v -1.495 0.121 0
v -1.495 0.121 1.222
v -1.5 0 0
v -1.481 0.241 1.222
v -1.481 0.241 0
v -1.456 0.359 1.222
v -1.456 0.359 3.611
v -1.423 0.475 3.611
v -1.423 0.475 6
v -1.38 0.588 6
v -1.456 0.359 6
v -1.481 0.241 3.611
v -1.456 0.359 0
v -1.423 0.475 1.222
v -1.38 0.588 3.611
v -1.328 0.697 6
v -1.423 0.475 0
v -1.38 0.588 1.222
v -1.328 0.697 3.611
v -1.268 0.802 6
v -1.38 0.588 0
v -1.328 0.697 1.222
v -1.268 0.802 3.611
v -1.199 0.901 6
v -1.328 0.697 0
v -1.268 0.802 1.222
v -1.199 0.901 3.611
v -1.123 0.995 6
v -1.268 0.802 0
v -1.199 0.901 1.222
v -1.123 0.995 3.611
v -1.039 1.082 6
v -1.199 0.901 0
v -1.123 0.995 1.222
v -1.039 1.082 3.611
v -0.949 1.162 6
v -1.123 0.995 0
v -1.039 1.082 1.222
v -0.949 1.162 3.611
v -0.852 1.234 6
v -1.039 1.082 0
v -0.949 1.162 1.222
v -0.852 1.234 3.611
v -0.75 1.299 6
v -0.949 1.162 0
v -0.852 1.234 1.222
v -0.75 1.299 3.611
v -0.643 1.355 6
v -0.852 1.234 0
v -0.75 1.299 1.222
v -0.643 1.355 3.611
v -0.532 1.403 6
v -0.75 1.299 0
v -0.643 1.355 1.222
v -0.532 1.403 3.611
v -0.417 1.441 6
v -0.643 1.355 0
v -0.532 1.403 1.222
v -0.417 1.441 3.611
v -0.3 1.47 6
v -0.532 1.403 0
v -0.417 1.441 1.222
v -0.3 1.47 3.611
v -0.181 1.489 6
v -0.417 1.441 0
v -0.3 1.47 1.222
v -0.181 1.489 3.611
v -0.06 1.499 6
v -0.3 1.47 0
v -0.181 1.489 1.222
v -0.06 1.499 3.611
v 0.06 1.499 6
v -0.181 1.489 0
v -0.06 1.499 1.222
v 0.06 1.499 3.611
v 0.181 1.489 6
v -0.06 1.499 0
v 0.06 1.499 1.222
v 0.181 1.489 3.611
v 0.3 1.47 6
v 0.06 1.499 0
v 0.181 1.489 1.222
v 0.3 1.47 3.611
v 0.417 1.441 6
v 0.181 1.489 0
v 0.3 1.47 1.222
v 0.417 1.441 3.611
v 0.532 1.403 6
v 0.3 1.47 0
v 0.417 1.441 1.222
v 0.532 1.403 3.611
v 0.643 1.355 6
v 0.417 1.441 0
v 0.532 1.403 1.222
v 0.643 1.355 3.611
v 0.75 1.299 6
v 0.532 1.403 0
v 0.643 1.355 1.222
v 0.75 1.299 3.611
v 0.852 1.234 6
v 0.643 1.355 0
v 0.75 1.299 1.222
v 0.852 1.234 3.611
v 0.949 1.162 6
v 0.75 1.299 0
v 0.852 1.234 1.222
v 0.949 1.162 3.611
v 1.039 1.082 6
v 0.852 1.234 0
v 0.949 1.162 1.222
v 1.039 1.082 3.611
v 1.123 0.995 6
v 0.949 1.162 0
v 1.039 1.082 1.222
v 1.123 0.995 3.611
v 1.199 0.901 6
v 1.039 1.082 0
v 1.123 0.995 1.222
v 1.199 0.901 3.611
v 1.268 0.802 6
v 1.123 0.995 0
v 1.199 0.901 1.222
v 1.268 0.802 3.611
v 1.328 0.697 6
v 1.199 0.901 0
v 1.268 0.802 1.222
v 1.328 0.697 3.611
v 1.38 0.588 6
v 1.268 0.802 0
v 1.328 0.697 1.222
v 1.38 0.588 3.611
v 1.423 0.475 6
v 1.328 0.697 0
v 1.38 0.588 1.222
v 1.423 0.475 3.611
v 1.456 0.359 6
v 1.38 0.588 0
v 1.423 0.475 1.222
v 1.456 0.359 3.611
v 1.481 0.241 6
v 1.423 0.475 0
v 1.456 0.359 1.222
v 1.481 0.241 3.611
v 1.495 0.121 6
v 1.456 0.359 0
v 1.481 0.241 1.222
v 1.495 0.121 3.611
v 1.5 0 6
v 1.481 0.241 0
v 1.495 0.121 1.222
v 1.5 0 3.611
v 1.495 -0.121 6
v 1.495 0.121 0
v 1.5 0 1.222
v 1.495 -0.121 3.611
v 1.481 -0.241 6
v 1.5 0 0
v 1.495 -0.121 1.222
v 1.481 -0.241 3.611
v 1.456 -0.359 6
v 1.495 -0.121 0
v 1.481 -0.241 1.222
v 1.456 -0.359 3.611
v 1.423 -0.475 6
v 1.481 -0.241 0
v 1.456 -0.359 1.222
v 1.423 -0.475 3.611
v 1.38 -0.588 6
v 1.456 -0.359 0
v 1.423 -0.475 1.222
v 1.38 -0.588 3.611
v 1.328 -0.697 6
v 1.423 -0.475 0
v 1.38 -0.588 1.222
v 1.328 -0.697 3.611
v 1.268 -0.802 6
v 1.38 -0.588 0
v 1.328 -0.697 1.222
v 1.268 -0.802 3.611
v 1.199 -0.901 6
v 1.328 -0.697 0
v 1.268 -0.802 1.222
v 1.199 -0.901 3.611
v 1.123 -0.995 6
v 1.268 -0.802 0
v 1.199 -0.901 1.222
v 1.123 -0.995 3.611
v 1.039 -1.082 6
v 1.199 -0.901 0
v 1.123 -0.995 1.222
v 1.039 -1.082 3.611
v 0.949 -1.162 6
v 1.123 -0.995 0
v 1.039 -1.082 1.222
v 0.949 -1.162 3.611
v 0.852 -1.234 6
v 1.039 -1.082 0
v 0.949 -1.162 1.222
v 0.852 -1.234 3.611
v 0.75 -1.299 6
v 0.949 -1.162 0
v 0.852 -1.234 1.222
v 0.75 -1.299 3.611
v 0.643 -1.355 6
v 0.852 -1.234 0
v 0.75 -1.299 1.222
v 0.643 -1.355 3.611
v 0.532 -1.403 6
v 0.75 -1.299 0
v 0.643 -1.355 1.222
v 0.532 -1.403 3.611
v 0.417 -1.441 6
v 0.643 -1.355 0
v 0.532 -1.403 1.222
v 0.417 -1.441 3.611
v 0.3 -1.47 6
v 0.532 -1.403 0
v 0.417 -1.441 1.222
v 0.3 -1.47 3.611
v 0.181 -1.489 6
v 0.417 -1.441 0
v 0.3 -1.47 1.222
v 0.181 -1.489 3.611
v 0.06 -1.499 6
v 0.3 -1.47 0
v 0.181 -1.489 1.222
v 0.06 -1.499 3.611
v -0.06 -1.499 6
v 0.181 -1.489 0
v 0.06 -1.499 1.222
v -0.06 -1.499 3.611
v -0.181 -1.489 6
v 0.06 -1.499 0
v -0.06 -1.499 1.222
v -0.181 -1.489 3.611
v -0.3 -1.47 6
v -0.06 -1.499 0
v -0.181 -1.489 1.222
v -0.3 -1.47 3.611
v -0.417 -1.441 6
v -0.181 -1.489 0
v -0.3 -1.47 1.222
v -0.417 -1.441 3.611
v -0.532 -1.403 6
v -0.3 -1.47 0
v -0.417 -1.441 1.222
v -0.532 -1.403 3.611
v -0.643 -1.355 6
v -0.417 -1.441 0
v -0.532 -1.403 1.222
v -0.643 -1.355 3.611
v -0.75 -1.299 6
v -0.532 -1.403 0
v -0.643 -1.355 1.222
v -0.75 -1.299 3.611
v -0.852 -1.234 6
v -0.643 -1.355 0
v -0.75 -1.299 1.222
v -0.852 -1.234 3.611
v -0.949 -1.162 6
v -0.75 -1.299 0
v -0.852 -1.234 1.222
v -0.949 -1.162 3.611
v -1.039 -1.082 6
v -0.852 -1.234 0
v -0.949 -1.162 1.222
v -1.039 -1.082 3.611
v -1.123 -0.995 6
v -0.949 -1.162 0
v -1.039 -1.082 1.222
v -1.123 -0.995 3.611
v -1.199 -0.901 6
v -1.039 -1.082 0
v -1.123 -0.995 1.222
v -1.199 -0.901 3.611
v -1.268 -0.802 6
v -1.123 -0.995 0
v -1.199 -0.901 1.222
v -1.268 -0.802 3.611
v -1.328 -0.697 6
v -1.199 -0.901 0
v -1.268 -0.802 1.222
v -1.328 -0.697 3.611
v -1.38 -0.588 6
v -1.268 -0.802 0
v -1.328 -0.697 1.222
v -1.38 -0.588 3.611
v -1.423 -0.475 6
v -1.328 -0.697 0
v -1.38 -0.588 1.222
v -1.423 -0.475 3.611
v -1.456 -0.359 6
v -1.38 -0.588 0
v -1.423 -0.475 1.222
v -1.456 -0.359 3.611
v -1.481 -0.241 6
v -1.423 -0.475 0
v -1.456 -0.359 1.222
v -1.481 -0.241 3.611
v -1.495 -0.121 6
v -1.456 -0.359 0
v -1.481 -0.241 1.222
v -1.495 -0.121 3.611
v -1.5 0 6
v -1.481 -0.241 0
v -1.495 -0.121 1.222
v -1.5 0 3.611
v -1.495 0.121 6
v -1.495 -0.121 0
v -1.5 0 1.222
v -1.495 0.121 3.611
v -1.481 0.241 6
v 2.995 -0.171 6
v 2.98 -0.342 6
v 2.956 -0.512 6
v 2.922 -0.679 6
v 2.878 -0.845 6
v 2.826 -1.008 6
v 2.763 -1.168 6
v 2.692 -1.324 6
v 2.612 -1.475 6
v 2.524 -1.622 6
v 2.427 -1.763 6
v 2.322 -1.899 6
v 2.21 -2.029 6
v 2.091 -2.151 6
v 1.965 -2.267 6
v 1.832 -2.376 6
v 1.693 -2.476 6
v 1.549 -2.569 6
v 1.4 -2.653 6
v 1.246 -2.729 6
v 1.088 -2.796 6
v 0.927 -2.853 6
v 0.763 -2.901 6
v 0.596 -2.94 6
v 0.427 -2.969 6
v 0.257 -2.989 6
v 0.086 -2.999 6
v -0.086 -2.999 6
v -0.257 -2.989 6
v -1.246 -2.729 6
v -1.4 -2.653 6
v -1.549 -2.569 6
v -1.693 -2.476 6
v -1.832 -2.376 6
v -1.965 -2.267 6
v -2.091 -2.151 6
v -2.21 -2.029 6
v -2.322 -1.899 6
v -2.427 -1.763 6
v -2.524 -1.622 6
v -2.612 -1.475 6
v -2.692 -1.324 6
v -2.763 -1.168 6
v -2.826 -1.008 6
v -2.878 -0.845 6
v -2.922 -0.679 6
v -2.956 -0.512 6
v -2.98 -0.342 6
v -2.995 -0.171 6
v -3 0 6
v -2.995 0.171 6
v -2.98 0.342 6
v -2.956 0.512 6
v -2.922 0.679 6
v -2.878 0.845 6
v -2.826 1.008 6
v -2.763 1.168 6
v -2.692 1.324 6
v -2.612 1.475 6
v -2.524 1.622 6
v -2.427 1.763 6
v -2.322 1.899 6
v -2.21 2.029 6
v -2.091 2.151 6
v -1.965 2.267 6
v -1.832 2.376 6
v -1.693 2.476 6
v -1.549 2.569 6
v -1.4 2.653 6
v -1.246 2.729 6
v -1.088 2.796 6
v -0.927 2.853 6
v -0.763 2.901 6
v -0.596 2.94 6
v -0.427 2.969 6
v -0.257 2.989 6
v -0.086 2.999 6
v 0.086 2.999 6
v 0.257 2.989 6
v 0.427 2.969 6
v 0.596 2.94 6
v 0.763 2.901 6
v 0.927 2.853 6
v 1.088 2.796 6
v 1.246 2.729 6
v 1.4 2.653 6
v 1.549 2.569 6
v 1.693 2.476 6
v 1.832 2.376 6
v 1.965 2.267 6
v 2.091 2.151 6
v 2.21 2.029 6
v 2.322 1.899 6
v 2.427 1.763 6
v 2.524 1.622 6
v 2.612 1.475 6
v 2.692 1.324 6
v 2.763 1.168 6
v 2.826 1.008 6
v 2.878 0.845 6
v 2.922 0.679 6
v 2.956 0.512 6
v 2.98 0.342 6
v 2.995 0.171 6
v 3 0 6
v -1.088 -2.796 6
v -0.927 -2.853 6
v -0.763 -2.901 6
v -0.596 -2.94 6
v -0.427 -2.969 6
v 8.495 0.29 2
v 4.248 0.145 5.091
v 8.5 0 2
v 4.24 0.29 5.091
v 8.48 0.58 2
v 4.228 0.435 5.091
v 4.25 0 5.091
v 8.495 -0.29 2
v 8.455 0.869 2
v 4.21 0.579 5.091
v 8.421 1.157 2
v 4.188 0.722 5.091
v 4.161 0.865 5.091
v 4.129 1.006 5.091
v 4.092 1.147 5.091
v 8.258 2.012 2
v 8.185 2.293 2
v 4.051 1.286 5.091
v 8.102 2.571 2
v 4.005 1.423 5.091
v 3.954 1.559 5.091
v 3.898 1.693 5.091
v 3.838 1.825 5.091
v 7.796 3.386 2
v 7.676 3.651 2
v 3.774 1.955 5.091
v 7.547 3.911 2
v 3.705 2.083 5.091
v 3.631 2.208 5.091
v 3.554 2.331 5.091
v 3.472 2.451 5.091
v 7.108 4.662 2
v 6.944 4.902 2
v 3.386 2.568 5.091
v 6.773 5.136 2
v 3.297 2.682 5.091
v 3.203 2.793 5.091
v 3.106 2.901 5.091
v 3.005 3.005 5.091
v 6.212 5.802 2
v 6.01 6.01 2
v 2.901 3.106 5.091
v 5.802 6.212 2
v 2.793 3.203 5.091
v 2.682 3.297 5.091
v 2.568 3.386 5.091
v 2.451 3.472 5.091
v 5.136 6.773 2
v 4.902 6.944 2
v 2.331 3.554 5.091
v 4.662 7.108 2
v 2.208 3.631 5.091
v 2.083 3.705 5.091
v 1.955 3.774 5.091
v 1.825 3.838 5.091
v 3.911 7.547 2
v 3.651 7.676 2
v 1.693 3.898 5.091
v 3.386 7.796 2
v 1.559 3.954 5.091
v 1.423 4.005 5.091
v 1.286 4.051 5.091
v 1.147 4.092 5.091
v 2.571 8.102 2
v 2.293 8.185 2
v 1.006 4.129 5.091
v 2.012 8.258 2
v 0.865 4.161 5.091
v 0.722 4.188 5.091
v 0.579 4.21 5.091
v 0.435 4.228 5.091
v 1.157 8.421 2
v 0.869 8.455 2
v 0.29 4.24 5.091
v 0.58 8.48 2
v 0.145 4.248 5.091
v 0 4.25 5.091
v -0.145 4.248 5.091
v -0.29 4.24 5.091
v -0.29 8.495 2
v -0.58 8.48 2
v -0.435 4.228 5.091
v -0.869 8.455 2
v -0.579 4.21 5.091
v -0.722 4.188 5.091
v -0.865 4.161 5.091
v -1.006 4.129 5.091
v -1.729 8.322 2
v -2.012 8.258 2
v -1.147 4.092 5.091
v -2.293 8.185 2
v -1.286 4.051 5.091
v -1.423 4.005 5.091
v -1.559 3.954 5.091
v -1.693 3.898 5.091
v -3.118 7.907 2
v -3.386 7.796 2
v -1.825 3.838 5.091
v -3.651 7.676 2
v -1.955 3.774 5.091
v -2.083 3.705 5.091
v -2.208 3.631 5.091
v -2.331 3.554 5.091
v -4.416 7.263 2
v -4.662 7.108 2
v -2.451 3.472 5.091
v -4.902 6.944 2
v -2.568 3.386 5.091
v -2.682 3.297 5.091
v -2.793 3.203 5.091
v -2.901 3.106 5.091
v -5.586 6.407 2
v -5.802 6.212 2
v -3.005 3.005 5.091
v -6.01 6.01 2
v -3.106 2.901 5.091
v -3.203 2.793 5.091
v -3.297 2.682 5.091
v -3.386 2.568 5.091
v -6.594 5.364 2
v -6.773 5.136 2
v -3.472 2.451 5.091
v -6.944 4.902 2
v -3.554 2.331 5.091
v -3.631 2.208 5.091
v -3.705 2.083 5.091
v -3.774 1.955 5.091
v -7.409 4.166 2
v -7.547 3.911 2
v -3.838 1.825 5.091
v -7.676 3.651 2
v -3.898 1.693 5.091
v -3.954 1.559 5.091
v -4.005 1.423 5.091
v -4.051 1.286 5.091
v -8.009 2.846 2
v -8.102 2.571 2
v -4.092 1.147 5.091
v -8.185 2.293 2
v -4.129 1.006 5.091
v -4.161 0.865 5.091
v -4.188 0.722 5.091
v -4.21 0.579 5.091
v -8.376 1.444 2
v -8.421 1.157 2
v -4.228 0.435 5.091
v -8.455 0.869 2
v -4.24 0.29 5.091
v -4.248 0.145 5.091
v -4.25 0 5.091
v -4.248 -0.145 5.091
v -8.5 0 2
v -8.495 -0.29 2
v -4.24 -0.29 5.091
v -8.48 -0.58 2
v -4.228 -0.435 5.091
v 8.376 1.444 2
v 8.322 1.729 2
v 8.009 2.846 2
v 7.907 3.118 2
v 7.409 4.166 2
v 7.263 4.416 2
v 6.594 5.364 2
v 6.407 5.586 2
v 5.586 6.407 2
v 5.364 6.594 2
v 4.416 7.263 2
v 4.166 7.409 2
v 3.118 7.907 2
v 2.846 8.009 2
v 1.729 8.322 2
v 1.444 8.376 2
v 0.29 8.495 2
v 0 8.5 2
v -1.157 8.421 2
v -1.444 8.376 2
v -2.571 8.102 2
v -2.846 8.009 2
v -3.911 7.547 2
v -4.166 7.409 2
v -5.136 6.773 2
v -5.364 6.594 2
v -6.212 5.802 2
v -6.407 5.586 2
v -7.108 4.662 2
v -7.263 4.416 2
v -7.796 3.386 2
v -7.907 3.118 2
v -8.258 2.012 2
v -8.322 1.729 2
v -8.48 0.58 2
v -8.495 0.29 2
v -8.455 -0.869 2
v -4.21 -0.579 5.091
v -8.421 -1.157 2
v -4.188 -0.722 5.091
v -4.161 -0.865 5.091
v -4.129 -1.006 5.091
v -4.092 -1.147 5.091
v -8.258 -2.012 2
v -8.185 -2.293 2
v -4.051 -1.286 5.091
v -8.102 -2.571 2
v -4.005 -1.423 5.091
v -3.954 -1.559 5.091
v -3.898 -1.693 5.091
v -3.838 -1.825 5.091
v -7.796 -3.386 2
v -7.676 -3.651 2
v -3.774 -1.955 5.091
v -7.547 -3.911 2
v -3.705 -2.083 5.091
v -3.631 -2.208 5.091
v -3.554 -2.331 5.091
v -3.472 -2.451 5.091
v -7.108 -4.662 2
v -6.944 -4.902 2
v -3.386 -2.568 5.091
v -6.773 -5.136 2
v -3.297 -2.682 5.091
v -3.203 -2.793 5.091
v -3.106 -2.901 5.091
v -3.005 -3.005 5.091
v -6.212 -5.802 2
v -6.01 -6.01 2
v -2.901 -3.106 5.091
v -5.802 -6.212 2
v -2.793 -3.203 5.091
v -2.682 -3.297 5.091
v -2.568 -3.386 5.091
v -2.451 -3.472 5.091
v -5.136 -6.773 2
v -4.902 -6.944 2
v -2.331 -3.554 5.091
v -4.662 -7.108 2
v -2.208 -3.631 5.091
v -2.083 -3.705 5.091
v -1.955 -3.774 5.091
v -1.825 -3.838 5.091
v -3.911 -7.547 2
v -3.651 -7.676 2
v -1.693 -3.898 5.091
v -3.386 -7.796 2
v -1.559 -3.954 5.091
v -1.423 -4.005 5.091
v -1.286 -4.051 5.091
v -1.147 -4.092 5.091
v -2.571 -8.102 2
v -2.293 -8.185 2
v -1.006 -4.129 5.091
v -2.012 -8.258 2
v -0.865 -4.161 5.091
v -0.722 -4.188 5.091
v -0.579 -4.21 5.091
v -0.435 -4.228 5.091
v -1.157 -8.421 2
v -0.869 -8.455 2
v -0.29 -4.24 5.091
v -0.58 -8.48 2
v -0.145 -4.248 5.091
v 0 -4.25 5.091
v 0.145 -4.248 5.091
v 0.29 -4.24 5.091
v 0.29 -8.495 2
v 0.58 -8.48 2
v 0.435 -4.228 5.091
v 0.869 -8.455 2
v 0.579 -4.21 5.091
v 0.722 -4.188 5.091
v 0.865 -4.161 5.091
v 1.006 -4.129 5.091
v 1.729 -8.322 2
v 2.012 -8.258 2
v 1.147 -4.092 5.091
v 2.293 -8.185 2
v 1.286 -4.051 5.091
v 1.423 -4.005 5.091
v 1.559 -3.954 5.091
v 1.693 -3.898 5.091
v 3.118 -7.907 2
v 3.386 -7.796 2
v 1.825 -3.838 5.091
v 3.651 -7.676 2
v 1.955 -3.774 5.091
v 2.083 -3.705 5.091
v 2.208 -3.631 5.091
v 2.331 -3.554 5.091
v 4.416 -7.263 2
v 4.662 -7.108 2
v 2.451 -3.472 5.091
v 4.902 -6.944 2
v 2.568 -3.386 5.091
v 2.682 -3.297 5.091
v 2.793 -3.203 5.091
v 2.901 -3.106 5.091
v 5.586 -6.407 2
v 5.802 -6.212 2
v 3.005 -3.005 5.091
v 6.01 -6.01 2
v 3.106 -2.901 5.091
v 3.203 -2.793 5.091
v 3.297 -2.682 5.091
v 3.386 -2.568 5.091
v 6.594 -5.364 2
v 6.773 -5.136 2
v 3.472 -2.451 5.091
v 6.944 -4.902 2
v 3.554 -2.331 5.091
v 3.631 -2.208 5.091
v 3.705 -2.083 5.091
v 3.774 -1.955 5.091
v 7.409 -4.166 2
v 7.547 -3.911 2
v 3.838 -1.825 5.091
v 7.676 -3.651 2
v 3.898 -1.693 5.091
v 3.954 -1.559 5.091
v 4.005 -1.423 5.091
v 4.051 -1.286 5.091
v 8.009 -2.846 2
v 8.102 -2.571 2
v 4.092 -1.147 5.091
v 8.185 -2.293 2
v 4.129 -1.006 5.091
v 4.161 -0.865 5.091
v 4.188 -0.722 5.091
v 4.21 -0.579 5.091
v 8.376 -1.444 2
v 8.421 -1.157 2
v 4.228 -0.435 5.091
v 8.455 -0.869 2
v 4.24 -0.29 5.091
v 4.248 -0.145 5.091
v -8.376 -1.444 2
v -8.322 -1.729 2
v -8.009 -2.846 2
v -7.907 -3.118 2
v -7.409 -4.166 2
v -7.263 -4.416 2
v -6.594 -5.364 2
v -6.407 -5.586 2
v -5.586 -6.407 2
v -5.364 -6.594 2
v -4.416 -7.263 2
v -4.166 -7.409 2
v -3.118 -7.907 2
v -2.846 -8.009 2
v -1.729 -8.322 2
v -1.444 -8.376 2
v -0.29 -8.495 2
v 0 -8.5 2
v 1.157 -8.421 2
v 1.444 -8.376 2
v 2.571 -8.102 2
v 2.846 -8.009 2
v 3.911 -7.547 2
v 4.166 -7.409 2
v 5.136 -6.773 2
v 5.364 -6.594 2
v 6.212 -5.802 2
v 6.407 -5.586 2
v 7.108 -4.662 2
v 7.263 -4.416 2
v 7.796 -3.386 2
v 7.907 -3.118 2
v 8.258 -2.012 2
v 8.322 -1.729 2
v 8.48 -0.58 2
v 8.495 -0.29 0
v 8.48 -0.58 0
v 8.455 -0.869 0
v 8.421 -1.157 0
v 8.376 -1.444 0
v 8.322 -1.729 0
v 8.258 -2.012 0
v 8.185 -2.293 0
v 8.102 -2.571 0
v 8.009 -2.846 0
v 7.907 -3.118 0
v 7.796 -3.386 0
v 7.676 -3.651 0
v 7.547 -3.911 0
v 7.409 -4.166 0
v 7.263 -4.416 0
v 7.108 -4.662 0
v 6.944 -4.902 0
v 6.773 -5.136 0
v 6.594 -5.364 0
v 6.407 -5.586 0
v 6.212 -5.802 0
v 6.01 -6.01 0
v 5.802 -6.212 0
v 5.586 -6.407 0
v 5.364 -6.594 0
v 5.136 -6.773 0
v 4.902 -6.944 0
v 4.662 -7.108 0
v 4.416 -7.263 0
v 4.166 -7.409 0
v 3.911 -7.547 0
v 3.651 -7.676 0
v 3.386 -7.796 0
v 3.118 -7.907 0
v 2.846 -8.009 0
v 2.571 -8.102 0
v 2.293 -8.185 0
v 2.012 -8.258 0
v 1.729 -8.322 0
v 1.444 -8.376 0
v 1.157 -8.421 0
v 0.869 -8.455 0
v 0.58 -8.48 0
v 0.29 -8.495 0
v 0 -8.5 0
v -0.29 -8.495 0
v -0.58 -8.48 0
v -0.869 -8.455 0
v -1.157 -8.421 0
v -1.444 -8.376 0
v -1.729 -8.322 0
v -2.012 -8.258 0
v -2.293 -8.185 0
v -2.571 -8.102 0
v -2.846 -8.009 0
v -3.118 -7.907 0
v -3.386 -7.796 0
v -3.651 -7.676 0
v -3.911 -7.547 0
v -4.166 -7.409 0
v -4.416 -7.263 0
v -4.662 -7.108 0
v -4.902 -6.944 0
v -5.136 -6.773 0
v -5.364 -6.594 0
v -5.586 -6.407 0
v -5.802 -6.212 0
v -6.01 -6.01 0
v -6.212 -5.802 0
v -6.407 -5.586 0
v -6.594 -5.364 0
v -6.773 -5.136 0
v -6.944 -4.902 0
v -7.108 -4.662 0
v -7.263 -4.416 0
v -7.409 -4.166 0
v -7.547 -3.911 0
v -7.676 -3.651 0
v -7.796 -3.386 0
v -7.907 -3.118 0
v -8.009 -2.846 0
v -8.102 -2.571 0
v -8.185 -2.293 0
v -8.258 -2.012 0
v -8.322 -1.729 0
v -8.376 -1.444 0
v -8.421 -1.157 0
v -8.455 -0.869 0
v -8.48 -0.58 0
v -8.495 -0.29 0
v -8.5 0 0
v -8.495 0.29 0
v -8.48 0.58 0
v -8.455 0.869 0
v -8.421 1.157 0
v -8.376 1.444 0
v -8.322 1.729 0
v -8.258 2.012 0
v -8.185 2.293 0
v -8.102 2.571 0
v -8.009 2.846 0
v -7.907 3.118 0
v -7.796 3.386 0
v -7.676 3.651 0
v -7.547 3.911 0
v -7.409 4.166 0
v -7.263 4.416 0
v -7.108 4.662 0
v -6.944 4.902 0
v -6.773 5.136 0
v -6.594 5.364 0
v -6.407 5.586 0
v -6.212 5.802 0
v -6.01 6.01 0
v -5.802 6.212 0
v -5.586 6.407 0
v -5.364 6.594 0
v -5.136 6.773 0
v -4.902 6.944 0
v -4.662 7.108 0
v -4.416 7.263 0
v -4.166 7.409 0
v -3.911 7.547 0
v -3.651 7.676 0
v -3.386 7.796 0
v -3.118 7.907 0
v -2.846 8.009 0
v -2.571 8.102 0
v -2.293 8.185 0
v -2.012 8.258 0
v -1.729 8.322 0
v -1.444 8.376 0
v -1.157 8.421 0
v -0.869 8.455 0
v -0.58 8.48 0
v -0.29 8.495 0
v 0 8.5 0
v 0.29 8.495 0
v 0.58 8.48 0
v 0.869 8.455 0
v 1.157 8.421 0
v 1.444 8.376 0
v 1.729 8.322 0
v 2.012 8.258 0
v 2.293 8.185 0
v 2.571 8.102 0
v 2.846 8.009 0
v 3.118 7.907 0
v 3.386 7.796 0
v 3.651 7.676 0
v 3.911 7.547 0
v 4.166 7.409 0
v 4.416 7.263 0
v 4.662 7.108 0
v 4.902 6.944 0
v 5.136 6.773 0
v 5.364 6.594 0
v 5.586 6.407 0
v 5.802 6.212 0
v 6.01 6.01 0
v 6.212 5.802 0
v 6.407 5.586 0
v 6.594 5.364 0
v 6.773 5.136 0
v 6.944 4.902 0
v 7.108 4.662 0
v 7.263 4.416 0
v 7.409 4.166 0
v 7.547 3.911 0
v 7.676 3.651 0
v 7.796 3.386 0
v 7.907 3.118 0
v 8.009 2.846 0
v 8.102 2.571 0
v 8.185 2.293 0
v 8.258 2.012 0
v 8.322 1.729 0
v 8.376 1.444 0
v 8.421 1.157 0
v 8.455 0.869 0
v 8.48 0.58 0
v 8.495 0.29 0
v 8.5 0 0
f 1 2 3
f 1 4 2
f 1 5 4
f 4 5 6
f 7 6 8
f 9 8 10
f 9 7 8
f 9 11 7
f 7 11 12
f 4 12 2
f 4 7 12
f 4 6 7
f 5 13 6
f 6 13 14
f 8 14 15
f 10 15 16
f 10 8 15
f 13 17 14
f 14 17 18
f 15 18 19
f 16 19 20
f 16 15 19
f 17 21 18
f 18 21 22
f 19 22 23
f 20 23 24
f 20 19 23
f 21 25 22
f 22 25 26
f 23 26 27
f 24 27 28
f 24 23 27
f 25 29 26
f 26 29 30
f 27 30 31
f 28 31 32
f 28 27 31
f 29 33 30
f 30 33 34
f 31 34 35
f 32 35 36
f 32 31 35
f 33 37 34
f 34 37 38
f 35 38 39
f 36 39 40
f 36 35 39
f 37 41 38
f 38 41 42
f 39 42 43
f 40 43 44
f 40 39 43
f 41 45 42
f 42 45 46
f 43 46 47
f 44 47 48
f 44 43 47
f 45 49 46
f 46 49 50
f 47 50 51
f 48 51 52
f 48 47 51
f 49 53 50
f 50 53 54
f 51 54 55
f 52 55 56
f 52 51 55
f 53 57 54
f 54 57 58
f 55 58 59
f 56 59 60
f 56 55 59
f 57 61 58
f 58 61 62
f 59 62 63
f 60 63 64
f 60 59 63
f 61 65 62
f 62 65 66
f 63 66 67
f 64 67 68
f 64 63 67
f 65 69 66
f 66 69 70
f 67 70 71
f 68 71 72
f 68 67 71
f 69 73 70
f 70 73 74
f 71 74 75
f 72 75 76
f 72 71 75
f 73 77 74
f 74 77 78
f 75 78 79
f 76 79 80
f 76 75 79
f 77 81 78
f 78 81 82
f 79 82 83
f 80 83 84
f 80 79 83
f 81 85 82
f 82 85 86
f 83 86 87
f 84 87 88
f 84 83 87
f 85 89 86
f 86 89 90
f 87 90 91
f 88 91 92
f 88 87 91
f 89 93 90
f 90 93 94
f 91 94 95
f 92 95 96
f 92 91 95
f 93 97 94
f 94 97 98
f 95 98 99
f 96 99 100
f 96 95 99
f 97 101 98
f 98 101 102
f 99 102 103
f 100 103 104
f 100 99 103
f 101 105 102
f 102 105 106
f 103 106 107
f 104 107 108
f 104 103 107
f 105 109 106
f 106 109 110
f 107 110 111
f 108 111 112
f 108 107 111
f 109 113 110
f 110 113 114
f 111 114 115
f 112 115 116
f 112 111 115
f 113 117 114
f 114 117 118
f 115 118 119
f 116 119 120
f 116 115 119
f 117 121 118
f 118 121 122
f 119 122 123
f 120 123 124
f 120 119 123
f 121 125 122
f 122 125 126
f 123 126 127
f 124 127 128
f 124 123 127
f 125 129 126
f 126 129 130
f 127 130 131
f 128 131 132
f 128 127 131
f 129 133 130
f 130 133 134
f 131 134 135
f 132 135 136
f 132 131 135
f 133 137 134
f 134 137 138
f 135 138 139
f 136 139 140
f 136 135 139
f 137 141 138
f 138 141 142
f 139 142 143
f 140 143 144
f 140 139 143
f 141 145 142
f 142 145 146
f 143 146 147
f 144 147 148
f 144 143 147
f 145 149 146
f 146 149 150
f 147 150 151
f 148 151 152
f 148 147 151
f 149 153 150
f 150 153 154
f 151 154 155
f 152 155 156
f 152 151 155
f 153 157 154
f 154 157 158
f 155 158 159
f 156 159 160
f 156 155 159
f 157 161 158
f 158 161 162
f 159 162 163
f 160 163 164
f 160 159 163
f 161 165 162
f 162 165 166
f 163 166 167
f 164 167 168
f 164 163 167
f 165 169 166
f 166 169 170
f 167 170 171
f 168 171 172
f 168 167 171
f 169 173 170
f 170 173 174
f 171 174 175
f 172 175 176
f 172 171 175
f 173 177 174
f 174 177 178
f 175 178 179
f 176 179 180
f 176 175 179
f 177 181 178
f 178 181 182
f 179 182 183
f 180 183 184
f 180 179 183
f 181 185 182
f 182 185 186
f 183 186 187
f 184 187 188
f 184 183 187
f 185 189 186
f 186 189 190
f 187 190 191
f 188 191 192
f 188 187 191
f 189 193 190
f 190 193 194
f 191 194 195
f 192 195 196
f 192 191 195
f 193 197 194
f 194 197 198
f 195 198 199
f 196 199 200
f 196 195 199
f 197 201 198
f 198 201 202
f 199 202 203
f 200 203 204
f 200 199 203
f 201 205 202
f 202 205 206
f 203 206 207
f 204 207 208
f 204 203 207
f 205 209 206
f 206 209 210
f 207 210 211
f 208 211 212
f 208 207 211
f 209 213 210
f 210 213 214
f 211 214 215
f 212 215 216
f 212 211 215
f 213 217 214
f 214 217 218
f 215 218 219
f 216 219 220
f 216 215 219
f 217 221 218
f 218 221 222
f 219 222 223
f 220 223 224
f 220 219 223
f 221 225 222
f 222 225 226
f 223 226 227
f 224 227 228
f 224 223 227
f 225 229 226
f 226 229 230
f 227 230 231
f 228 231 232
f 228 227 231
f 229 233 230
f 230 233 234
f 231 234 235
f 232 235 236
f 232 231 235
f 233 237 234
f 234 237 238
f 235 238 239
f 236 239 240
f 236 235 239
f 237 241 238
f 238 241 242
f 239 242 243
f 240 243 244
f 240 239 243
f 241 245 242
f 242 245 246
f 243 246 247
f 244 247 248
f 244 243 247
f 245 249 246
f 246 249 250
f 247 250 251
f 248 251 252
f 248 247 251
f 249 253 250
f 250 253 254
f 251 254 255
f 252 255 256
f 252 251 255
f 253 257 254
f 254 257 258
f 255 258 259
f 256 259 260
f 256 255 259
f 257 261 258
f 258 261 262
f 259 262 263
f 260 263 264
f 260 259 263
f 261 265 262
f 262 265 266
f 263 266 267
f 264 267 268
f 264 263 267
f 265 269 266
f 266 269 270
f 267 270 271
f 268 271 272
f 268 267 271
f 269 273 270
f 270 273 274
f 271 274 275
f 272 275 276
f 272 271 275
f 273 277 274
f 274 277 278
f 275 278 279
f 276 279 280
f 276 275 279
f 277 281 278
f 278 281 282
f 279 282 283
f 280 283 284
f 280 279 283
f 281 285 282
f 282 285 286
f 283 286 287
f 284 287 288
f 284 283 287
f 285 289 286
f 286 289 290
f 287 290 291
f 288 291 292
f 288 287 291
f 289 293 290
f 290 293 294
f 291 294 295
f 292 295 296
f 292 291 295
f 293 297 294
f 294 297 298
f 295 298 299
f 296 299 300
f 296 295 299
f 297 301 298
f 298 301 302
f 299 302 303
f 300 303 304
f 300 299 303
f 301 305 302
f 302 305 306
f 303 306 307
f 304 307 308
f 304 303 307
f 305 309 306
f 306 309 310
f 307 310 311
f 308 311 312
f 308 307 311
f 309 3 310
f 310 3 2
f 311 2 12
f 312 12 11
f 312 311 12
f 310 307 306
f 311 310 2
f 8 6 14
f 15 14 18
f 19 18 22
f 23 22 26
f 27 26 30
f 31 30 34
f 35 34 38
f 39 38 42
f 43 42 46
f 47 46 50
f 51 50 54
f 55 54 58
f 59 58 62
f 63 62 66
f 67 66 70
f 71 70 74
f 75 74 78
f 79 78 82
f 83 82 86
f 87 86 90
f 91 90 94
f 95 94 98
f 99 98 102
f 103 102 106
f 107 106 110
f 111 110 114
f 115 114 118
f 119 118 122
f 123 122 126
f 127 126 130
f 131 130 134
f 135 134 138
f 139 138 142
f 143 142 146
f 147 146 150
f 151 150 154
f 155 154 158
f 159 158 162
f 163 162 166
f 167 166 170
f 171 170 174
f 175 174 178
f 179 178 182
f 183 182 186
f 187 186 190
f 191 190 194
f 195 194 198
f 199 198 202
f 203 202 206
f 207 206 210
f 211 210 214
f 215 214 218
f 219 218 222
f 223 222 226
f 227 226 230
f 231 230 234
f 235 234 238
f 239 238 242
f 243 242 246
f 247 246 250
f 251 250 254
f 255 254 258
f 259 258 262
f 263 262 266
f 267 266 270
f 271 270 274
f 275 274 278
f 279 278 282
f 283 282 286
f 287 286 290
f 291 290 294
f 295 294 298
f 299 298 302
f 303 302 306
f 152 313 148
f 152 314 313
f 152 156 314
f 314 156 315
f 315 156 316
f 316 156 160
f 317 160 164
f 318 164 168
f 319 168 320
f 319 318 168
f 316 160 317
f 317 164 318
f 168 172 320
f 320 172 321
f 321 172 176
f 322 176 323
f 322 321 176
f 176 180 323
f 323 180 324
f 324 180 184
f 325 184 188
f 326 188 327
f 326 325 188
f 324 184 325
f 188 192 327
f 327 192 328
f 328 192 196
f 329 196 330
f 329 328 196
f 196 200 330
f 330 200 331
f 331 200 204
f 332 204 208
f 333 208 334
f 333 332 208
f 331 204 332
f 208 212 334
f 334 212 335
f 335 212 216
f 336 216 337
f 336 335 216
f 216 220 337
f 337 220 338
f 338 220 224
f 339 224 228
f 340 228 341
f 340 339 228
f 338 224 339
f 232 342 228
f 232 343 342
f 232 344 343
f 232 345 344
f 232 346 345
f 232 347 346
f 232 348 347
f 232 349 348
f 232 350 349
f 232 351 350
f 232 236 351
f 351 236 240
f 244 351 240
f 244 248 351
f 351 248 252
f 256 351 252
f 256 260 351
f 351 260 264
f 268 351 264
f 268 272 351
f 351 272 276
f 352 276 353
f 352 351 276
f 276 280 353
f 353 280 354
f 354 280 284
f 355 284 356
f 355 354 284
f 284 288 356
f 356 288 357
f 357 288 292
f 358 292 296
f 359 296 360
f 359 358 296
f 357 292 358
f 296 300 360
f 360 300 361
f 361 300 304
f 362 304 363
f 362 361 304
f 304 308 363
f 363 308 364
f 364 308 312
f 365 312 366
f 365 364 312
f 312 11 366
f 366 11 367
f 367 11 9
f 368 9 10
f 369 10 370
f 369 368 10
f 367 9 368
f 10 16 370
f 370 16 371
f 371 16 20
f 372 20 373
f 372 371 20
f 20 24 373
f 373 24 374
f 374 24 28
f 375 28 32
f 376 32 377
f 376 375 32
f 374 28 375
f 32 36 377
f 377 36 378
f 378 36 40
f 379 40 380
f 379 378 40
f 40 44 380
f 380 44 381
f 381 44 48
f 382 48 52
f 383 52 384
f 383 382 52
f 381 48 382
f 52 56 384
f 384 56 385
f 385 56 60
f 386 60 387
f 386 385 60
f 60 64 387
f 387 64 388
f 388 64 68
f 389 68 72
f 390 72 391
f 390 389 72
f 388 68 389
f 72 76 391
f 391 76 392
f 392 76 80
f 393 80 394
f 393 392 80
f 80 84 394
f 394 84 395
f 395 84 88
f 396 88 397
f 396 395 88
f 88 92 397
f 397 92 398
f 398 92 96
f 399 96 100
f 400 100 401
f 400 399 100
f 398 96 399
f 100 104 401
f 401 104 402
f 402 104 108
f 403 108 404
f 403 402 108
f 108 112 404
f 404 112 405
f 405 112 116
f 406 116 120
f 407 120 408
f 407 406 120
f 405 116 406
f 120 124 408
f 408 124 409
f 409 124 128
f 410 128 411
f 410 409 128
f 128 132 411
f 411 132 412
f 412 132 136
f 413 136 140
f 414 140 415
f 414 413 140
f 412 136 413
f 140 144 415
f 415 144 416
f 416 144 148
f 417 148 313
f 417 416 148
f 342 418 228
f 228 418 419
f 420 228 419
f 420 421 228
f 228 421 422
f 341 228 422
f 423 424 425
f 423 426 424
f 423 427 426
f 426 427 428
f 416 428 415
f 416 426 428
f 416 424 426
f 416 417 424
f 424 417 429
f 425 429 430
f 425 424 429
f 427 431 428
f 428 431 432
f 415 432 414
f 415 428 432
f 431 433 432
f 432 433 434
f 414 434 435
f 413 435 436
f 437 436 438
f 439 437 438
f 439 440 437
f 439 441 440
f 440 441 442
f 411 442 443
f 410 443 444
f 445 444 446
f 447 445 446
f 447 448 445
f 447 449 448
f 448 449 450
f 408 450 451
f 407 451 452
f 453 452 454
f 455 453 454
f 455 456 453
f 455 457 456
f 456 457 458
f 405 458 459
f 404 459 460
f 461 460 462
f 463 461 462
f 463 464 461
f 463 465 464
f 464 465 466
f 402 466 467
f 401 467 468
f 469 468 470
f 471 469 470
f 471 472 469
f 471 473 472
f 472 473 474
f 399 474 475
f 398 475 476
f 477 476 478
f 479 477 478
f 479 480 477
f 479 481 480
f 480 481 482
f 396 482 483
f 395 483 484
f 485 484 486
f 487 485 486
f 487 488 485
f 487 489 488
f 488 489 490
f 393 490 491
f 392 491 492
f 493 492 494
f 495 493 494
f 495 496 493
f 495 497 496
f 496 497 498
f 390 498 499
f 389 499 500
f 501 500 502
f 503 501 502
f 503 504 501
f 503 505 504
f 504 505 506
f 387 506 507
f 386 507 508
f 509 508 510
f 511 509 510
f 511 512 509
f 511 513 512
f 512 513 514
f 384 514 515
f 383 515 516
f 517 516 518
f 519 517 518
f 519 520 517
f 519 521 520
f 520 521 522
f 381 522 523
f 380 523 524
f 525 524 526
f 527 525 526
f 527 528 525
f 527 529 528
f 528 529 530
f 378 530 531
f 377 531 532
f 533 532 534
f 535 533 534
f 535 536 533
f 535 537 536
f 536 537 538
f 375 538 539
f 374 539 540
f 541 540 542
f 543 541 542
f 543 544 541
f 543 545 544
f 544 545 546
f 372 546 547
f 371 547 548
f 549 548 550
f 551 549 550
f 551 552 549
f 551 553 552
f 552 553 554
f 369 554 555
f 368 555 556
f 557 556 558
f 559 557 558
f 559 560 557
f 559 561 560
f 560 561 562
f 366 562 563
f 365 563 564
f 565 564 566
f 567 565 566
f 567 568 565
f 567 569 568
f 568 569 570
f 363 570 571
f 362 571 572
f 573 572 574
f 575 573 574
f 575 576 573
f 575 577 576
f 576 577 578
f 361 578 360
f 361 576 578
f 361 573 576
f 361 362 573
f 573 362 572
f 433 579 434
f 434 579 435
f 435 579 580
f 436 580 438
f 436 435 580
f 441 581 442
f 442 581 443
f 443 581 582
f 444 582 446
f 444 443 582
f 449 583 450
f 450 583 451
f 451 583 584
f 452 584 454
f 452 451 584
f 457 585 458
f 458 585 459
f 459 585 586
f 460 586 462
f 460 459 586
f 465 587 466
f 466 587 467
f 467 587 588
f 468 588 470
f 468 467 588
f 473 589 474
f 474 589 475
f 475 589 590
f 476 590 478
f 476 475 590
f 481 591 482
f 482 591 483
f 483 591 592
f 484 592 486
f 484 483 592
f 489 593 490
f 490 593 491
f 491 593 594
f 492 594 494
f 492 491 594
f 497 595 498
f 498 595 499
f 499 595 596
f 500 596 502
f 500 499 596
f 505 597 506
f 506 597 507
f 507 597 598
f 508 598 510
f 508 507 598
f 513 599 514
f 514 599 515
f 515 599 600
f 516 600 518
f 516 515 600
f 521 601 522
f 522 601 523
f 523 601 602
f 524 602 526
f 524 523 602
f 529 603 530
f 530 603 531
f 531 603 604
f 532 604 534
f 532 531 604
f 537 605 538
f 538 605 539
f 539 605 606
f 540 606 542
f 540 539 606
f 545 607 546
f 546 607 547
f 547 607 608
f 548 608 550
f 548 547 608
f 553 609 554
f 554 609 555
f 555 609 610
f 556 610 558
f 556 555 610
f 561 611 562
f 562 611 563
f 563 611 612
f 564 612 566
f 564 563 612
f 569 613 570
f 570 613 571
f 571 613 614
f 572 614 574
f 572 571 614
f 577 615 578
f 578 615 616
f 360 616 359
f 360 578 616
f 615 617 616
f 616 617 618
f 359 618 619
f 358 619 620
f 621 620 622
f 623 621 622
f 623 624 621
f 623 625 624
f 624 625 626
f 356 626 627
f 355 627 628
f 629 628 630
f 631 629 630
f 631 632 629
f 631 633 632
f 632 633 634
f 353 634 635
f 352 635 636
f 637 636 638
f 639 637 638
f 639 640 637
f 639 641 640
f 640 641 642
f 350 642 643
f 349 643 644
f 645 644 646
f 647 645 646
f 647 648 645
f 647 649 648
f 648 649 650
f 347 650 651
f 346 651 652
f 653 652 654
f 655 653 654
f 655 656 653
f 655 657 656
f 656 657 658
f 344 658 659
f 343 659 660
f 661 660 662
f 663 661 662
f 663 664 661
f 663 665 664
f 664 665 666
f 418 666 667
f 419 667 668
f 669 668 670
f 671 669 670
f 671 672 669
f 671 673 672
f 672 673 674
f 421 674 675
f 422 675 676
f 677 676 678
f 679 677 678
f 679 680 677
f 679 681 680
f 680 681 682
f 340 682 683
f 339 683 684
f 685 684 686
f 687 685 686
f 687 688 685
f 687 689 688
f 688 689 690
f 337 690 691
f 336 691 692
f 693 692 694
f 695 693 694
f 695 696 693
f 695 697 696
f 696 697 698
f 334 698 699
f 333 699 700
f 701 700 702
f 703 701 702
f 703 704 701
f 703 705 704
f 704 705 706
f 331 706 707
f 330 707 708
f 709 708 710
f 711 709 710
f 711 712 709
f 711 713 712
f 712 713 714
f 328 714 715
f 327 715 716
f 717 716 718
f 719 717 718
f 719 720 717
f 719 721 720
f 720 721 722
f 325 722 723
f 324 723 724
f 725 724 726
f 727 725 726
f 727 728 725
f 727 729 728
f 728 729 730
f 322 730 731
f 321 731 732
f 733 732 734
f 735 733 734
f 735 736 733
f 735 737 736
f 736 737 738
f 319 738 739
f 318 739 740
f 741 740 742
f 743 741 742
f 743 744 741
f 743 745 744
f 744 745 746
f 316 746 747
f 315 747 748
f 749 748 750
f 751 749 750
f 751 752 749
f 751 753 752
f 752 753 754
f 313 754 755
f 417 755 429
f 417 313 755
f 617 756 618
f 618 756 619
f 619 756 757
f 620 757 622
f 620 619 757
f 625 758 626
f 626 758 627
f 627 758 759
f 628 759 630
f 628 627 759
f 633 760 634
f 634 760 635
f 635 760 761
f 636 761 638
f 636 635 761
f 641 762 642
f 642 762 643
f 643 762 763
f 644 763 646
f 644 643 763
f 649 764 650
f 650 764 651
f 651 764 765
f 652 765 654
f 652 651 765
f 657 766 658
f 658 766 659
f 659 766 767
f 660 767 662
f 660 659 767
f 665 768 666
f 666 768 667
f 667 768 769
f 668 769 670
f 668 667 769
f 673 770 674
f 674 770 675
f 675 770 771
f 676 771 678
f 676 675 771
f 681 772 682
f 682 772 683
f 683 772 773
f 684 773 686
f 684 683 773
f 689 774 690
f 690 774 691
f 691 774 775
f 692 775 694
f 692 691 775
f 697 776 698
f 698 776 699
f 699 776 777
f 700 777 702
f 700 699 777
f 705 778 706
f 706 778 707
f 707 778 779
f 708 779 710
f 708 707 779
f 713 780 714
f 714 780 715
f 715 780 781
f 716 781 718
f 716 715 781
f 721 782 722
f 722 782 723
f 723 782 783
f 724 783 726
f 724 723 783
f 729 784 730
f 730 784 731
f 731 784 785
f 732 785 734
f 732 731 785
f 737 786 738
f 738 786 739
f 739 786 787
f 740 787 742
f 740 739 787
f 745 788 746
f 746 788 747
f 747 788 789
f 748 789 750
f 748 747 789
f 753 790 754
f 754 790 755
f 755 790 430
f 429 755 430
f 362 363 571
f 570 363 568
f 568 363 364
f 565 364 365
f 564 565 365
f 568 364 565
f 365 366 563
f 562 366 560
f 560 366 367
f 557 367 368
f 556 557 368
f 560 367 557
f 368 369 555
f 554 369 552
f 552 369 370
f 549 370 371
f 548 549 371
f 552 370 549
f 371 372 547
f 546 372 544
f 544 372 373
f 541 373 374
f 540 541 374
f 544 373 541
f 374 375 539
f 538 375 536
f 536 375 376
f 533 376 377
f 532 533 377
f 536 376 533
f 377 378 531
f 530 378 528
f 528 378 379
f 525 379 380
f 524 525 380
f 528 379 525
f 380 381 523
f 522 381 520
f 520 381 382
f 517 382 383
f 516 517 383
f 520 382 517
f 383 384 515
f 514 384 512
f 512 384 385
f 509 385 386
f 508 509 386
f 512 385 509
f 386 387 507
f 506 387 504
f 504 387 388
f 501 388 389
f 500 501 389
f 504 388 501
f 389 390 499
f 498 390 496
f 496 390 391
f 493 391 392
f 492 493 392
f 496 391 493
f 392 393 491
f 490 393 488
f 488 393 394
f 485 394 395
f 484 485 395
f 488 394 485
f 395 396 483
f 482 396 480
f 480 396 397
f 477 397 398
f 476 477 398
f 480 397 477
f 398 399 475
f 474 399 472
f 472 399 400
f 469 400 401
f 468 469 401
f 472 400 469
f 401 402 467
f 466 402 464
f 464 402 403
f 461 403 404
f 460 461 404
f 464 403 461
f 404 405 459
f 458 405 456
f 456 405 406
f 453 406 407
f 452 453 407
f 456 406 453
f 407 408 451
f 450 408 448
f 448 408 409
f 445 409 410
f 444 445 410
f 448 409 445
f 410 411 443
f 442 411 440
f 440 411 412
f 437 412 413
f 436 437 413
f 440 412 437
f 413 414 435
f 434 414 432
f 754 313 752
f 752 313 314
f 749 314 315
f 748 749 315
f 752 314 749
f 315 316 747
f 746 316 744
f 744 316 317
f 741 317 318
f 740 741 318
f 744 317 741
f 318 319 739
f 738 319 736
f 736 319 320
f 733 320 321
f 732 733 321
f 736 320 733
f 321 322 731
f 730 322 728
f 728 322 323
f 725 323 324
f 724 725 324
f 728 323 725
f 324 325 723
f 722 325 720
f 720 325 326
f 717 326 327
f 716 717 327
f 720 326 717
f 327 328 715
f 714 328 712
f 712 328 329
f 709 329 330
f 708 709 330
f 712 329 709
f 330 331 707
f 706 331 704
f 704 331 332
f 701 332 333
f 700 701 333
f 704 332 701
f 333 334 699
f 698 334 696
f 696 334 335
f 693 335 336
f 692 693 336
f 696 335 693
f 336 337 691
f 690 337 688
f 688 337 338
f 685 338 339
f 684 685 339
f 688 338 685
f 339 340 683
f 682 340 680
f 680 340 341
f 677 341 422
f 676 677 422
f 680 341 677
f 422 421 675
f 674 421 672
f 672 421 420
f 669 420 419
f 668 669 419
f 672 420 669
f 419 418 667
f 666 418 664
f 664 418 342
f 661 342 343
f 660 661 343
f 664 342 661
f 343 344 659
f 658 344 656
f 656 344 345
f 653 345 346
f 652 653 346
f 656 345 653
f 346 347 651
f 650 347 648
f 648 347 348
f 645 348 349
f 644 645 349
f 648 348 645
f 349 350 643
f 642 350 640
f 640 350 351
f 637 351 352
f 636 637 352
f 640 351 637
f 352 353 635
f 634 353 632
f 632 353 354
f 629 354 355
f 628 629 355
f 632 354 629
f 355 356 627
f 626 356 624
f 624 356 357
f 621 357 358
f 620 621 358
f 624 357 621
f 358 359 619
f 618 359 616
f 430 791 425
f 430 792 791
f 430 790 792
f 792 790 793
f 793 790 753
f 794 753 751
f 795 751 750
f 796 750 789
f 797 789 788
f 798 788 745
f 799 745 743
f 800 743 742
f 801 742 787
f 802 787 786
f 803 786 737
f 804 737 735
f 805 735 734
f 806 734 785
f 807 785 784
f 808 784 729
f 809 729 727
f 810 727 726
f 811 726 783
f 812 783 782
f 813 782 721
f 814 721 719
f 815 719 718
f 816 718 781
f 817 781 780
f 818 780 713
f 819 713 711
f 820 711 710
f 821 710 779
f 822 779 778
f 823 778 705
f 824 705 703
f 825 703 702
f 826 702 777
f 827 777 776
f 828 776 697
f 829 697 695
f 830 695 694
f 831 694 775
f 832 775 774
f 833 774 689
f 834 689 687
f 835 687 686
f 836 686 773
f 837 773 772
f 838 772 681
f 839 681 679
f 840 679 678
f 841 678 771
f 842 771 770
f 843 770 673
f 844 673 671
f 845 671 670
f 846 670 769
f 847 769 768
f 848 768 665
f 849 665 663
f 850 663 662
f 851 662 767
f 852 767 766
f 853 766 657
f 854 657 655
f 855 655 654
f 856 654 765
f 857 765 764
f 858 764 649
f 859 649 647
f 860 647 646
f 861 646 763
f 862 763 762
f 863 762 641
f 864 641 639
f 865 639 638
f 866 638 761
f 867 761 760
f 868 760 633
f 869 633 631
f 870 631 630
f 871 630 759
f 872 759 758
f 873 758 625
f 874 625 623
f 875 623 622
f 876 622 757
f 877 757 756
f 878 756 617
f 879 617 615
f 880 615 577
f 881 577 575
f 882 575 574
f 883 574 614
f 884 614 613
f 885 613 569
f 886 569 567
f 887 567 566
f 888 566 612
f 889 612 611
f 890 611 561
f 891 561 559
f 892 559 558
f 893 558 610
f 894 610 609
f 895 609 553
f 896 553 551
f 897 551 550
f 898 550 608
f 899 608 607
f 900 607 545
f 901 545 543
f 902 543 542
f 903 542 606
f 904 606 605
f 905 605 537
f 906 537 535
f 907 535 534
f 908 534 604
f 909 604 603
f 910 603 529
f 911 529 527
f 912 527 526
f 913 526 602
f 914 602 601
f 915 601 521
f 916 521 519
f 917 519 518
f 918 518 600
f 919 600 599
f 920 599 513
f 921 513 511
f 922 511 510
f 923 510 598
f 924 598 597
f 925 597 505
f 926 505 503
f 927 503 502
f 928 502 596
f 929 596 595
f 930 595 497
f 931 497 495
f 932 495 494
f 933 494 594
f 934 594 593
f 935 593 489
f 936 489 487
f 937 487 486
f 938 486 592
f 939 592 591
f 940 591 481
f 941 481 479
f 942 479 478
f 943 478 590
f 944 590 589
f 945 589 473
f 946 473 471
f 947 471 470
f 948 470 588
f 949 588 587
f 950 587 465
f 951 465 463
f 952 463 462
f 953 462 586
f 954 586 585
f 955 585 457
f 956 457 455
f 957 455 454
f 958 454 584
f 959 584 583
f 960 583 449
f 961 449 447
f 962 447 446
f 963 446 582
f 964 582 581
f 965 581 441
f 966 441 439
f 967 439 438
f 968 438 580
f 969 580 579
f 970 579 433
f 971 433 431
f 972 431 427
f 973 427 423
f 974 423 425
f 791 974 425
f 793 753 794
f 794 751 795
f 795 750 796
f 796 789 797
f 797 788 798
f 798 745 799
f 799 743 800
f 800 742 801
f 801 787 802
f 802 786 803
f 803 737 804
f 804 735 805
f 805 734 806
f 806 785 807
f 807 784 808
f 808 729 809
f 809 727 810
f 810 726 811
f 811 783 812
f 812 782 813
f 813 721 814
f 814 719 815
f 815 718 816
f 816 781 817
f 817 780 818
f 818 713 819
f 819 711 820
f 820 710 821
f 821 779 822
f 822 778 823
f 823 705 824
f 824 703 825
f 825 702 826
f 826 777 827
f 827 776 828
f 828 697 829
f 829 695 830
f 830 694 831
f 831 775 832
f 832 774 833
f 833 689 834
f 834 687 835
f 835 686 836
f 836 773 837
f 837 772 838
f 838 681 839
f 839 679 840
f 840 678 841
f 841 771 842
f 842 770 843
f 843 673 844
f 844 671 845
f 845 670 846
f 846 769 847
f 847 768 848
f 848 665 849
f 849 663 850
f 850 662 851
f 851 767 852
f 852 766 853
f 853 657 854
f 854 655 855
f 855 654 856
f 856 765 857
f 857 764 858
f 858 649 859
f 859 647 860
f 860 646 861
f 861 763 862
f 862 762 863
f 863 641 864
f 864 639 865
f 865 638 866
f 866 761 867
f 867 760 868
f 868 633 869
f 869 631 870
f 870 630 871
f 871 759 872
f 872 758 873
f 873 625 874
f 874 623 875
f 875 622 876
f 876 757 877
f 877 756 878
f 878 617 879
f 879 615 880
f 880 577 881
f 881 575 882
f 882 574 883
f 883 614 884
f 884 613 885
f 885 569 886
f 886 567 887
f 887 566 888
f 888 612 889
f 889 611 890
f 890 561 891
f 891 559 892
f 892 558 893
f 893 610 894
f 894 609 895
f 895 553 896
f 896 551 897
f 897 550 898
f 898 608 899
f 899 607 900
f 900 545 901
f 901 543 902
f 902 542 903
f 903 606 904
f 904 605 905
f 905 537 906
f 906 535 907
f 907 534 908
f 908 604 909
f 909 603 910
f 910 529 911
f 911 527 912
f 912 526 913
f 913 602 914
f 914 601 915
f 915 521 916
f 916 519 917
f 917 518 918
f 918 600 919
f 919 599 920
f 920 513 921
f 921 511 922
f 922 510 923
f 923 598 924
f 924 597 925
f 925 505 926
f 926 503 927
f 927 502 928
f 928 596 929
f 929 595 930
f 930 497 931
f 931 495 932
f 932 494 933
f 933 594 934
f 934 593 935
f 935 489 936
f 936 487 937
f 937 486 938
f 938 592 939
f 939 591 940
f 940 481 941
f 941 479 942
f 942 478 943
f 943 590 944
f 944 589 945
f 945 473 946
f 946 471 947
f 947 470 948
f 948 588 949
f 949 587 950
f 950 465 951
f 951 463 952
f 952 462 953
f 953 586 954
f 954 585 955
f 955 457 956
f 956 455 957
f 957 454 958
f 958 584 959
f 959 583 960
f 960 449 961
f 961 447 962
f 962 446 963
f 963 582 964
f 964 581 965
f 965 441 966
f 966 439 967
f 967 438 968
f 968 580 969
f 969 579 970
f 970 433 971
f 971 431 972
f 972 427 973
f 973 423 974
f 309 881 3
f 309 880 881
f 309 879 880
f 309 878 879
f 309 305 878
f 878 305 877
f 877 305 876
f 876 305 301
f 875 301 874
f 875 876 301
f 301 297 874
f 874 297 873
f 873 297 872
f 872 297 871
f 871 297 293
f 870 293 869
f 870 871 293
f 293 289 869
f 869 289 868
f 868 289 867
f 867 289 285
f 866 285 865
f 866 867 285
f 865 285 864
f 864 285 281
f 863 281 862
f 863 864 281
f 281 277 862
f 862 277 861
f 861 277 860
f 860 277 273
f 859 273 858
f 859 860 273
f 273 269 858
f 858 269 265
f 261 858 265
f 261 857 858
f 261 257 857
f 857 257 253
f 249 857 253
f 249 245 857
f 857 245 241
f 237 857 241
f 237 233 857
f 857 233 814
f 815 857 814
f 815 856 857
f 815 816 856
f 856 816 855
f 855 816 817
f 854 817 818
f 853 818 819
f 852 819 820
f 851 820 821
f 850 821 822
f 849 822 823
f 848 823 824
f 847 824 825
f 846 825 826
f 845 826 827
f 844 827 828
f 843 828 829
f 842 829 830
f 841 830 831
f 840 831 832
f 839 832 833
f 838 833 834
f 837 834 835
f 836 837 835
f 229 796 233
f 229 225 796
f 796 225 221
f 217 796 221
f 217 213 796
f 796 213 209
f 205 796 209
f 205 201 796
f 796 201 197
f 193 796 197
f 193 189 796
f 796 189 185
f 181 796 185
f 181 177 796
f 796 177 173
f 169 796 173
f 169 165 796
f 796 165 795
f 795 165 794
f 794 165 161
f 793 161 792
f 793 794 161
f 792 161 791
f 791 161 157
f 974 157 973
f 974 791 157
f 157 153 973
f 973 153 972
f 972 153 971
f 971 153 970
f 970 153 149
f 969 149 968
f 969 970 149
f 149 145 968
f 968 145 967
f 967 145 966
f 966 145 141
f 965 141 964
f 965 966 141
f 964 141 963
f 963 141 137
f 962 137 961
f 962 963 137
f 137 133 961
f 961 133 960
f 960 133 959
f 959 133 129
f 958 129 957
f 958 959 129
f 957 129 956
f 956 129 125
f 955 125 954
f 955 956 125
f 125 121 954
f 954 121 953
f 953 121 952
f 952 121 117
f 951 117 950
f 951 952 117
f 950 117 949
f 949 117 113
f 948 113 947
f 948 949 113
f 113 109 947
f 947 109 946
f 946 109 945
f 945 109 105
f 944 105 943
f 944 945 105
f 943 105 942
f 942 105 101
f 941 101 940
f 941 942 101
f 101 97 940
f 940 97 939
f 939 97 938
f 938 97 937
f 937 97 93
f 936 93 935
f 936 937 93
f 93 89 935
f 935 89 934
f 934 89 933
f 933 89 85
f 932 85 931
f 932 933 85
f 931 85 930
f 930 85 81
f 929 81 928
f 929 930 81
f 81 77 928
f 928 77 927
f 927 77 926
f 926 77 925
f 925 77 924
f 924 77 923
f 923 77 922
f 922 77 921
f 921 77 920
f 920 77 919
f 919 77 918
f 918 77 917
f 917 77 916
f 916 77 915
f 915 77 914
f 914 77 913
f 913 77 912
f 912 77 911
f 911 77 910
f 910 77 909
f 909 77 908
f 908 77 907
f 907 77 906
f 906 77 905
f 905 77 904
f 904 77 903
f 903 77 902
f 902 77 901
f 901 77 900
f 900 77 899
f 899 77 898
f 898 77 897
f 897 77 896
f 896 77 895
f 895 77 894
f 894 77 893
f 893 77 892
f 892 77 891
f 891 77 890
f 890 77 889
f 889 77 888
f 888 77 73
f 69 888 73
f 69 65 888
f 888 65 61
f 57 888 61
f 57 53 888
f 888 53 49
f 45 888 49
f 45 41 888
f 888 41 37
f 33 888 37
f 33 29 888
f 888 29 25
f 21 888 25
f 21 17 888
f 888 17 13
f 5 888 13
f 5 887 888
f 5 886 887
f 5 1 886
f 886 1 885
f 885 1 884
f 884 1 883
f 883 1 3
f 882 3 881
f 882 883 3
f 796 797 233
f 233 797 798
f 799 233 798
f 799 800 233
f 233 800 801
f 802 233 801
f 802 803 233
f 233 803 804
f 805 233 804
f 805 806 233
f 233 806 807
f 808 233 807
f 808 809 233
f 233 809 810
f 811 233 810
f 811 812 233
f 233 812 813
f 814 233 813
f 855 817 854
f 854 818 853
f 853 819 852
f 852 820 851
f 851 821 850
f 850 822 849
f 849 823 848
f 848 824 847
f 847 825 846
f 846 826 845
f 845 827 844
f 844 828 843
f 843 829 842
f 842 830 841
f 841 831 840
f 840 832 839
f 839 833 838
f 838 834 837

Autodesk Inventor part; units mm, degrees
ref_plane "YZ Plane" through (0, 0, 0) normal (1, 0, 0) x (0, 1, 0)
ref_plane "XZ Plane" through (0, 0, 0) normal (0, 1, 0) x (-1, 0, 0)
sketch "Base" plane through (0, 0, 0) normal (0, 0, 1) x (1, 0, 0)
  circle A0 centre (0, 0) radius 8.5
  dimension "d0" = 17
extrude "BaseFeature" add sketch "Base" along normal blind 2
sketch "LoftStart" plane through (0, 0, 2) normal (0, 0, 1) x (1, 0, 0)
  circle A0 centre (0, 0) radius 8.5 projected
ref_plane "LoftEndPlane" through (0, 0, 6) normal (0, 0, 1) x (1, 0, 0)
sketch "LoftEnd" plane through (0, 0, 6) normal (0, 0, 1) x (1, 0, 0)
  circle A0 centre (0, 0) radius 8.5 construction
  circle A1 centre (0, 0) radius 3
  dimension "d4" = 6
loft "BellLoftFeature" add profiles "LoftStart", "LoftEnd"
sketch "TopHole" plane through (0, 0, 6) normal (0, 0, 1) x (1, 0, 0)
  circle A0 centre (0, 0) radius 3 projected
hole "TopHoleFeature" at (0, 0, 6) direction (0, 0, -1) diameter 3 end through all
properties part number "ForearmClampHead"
